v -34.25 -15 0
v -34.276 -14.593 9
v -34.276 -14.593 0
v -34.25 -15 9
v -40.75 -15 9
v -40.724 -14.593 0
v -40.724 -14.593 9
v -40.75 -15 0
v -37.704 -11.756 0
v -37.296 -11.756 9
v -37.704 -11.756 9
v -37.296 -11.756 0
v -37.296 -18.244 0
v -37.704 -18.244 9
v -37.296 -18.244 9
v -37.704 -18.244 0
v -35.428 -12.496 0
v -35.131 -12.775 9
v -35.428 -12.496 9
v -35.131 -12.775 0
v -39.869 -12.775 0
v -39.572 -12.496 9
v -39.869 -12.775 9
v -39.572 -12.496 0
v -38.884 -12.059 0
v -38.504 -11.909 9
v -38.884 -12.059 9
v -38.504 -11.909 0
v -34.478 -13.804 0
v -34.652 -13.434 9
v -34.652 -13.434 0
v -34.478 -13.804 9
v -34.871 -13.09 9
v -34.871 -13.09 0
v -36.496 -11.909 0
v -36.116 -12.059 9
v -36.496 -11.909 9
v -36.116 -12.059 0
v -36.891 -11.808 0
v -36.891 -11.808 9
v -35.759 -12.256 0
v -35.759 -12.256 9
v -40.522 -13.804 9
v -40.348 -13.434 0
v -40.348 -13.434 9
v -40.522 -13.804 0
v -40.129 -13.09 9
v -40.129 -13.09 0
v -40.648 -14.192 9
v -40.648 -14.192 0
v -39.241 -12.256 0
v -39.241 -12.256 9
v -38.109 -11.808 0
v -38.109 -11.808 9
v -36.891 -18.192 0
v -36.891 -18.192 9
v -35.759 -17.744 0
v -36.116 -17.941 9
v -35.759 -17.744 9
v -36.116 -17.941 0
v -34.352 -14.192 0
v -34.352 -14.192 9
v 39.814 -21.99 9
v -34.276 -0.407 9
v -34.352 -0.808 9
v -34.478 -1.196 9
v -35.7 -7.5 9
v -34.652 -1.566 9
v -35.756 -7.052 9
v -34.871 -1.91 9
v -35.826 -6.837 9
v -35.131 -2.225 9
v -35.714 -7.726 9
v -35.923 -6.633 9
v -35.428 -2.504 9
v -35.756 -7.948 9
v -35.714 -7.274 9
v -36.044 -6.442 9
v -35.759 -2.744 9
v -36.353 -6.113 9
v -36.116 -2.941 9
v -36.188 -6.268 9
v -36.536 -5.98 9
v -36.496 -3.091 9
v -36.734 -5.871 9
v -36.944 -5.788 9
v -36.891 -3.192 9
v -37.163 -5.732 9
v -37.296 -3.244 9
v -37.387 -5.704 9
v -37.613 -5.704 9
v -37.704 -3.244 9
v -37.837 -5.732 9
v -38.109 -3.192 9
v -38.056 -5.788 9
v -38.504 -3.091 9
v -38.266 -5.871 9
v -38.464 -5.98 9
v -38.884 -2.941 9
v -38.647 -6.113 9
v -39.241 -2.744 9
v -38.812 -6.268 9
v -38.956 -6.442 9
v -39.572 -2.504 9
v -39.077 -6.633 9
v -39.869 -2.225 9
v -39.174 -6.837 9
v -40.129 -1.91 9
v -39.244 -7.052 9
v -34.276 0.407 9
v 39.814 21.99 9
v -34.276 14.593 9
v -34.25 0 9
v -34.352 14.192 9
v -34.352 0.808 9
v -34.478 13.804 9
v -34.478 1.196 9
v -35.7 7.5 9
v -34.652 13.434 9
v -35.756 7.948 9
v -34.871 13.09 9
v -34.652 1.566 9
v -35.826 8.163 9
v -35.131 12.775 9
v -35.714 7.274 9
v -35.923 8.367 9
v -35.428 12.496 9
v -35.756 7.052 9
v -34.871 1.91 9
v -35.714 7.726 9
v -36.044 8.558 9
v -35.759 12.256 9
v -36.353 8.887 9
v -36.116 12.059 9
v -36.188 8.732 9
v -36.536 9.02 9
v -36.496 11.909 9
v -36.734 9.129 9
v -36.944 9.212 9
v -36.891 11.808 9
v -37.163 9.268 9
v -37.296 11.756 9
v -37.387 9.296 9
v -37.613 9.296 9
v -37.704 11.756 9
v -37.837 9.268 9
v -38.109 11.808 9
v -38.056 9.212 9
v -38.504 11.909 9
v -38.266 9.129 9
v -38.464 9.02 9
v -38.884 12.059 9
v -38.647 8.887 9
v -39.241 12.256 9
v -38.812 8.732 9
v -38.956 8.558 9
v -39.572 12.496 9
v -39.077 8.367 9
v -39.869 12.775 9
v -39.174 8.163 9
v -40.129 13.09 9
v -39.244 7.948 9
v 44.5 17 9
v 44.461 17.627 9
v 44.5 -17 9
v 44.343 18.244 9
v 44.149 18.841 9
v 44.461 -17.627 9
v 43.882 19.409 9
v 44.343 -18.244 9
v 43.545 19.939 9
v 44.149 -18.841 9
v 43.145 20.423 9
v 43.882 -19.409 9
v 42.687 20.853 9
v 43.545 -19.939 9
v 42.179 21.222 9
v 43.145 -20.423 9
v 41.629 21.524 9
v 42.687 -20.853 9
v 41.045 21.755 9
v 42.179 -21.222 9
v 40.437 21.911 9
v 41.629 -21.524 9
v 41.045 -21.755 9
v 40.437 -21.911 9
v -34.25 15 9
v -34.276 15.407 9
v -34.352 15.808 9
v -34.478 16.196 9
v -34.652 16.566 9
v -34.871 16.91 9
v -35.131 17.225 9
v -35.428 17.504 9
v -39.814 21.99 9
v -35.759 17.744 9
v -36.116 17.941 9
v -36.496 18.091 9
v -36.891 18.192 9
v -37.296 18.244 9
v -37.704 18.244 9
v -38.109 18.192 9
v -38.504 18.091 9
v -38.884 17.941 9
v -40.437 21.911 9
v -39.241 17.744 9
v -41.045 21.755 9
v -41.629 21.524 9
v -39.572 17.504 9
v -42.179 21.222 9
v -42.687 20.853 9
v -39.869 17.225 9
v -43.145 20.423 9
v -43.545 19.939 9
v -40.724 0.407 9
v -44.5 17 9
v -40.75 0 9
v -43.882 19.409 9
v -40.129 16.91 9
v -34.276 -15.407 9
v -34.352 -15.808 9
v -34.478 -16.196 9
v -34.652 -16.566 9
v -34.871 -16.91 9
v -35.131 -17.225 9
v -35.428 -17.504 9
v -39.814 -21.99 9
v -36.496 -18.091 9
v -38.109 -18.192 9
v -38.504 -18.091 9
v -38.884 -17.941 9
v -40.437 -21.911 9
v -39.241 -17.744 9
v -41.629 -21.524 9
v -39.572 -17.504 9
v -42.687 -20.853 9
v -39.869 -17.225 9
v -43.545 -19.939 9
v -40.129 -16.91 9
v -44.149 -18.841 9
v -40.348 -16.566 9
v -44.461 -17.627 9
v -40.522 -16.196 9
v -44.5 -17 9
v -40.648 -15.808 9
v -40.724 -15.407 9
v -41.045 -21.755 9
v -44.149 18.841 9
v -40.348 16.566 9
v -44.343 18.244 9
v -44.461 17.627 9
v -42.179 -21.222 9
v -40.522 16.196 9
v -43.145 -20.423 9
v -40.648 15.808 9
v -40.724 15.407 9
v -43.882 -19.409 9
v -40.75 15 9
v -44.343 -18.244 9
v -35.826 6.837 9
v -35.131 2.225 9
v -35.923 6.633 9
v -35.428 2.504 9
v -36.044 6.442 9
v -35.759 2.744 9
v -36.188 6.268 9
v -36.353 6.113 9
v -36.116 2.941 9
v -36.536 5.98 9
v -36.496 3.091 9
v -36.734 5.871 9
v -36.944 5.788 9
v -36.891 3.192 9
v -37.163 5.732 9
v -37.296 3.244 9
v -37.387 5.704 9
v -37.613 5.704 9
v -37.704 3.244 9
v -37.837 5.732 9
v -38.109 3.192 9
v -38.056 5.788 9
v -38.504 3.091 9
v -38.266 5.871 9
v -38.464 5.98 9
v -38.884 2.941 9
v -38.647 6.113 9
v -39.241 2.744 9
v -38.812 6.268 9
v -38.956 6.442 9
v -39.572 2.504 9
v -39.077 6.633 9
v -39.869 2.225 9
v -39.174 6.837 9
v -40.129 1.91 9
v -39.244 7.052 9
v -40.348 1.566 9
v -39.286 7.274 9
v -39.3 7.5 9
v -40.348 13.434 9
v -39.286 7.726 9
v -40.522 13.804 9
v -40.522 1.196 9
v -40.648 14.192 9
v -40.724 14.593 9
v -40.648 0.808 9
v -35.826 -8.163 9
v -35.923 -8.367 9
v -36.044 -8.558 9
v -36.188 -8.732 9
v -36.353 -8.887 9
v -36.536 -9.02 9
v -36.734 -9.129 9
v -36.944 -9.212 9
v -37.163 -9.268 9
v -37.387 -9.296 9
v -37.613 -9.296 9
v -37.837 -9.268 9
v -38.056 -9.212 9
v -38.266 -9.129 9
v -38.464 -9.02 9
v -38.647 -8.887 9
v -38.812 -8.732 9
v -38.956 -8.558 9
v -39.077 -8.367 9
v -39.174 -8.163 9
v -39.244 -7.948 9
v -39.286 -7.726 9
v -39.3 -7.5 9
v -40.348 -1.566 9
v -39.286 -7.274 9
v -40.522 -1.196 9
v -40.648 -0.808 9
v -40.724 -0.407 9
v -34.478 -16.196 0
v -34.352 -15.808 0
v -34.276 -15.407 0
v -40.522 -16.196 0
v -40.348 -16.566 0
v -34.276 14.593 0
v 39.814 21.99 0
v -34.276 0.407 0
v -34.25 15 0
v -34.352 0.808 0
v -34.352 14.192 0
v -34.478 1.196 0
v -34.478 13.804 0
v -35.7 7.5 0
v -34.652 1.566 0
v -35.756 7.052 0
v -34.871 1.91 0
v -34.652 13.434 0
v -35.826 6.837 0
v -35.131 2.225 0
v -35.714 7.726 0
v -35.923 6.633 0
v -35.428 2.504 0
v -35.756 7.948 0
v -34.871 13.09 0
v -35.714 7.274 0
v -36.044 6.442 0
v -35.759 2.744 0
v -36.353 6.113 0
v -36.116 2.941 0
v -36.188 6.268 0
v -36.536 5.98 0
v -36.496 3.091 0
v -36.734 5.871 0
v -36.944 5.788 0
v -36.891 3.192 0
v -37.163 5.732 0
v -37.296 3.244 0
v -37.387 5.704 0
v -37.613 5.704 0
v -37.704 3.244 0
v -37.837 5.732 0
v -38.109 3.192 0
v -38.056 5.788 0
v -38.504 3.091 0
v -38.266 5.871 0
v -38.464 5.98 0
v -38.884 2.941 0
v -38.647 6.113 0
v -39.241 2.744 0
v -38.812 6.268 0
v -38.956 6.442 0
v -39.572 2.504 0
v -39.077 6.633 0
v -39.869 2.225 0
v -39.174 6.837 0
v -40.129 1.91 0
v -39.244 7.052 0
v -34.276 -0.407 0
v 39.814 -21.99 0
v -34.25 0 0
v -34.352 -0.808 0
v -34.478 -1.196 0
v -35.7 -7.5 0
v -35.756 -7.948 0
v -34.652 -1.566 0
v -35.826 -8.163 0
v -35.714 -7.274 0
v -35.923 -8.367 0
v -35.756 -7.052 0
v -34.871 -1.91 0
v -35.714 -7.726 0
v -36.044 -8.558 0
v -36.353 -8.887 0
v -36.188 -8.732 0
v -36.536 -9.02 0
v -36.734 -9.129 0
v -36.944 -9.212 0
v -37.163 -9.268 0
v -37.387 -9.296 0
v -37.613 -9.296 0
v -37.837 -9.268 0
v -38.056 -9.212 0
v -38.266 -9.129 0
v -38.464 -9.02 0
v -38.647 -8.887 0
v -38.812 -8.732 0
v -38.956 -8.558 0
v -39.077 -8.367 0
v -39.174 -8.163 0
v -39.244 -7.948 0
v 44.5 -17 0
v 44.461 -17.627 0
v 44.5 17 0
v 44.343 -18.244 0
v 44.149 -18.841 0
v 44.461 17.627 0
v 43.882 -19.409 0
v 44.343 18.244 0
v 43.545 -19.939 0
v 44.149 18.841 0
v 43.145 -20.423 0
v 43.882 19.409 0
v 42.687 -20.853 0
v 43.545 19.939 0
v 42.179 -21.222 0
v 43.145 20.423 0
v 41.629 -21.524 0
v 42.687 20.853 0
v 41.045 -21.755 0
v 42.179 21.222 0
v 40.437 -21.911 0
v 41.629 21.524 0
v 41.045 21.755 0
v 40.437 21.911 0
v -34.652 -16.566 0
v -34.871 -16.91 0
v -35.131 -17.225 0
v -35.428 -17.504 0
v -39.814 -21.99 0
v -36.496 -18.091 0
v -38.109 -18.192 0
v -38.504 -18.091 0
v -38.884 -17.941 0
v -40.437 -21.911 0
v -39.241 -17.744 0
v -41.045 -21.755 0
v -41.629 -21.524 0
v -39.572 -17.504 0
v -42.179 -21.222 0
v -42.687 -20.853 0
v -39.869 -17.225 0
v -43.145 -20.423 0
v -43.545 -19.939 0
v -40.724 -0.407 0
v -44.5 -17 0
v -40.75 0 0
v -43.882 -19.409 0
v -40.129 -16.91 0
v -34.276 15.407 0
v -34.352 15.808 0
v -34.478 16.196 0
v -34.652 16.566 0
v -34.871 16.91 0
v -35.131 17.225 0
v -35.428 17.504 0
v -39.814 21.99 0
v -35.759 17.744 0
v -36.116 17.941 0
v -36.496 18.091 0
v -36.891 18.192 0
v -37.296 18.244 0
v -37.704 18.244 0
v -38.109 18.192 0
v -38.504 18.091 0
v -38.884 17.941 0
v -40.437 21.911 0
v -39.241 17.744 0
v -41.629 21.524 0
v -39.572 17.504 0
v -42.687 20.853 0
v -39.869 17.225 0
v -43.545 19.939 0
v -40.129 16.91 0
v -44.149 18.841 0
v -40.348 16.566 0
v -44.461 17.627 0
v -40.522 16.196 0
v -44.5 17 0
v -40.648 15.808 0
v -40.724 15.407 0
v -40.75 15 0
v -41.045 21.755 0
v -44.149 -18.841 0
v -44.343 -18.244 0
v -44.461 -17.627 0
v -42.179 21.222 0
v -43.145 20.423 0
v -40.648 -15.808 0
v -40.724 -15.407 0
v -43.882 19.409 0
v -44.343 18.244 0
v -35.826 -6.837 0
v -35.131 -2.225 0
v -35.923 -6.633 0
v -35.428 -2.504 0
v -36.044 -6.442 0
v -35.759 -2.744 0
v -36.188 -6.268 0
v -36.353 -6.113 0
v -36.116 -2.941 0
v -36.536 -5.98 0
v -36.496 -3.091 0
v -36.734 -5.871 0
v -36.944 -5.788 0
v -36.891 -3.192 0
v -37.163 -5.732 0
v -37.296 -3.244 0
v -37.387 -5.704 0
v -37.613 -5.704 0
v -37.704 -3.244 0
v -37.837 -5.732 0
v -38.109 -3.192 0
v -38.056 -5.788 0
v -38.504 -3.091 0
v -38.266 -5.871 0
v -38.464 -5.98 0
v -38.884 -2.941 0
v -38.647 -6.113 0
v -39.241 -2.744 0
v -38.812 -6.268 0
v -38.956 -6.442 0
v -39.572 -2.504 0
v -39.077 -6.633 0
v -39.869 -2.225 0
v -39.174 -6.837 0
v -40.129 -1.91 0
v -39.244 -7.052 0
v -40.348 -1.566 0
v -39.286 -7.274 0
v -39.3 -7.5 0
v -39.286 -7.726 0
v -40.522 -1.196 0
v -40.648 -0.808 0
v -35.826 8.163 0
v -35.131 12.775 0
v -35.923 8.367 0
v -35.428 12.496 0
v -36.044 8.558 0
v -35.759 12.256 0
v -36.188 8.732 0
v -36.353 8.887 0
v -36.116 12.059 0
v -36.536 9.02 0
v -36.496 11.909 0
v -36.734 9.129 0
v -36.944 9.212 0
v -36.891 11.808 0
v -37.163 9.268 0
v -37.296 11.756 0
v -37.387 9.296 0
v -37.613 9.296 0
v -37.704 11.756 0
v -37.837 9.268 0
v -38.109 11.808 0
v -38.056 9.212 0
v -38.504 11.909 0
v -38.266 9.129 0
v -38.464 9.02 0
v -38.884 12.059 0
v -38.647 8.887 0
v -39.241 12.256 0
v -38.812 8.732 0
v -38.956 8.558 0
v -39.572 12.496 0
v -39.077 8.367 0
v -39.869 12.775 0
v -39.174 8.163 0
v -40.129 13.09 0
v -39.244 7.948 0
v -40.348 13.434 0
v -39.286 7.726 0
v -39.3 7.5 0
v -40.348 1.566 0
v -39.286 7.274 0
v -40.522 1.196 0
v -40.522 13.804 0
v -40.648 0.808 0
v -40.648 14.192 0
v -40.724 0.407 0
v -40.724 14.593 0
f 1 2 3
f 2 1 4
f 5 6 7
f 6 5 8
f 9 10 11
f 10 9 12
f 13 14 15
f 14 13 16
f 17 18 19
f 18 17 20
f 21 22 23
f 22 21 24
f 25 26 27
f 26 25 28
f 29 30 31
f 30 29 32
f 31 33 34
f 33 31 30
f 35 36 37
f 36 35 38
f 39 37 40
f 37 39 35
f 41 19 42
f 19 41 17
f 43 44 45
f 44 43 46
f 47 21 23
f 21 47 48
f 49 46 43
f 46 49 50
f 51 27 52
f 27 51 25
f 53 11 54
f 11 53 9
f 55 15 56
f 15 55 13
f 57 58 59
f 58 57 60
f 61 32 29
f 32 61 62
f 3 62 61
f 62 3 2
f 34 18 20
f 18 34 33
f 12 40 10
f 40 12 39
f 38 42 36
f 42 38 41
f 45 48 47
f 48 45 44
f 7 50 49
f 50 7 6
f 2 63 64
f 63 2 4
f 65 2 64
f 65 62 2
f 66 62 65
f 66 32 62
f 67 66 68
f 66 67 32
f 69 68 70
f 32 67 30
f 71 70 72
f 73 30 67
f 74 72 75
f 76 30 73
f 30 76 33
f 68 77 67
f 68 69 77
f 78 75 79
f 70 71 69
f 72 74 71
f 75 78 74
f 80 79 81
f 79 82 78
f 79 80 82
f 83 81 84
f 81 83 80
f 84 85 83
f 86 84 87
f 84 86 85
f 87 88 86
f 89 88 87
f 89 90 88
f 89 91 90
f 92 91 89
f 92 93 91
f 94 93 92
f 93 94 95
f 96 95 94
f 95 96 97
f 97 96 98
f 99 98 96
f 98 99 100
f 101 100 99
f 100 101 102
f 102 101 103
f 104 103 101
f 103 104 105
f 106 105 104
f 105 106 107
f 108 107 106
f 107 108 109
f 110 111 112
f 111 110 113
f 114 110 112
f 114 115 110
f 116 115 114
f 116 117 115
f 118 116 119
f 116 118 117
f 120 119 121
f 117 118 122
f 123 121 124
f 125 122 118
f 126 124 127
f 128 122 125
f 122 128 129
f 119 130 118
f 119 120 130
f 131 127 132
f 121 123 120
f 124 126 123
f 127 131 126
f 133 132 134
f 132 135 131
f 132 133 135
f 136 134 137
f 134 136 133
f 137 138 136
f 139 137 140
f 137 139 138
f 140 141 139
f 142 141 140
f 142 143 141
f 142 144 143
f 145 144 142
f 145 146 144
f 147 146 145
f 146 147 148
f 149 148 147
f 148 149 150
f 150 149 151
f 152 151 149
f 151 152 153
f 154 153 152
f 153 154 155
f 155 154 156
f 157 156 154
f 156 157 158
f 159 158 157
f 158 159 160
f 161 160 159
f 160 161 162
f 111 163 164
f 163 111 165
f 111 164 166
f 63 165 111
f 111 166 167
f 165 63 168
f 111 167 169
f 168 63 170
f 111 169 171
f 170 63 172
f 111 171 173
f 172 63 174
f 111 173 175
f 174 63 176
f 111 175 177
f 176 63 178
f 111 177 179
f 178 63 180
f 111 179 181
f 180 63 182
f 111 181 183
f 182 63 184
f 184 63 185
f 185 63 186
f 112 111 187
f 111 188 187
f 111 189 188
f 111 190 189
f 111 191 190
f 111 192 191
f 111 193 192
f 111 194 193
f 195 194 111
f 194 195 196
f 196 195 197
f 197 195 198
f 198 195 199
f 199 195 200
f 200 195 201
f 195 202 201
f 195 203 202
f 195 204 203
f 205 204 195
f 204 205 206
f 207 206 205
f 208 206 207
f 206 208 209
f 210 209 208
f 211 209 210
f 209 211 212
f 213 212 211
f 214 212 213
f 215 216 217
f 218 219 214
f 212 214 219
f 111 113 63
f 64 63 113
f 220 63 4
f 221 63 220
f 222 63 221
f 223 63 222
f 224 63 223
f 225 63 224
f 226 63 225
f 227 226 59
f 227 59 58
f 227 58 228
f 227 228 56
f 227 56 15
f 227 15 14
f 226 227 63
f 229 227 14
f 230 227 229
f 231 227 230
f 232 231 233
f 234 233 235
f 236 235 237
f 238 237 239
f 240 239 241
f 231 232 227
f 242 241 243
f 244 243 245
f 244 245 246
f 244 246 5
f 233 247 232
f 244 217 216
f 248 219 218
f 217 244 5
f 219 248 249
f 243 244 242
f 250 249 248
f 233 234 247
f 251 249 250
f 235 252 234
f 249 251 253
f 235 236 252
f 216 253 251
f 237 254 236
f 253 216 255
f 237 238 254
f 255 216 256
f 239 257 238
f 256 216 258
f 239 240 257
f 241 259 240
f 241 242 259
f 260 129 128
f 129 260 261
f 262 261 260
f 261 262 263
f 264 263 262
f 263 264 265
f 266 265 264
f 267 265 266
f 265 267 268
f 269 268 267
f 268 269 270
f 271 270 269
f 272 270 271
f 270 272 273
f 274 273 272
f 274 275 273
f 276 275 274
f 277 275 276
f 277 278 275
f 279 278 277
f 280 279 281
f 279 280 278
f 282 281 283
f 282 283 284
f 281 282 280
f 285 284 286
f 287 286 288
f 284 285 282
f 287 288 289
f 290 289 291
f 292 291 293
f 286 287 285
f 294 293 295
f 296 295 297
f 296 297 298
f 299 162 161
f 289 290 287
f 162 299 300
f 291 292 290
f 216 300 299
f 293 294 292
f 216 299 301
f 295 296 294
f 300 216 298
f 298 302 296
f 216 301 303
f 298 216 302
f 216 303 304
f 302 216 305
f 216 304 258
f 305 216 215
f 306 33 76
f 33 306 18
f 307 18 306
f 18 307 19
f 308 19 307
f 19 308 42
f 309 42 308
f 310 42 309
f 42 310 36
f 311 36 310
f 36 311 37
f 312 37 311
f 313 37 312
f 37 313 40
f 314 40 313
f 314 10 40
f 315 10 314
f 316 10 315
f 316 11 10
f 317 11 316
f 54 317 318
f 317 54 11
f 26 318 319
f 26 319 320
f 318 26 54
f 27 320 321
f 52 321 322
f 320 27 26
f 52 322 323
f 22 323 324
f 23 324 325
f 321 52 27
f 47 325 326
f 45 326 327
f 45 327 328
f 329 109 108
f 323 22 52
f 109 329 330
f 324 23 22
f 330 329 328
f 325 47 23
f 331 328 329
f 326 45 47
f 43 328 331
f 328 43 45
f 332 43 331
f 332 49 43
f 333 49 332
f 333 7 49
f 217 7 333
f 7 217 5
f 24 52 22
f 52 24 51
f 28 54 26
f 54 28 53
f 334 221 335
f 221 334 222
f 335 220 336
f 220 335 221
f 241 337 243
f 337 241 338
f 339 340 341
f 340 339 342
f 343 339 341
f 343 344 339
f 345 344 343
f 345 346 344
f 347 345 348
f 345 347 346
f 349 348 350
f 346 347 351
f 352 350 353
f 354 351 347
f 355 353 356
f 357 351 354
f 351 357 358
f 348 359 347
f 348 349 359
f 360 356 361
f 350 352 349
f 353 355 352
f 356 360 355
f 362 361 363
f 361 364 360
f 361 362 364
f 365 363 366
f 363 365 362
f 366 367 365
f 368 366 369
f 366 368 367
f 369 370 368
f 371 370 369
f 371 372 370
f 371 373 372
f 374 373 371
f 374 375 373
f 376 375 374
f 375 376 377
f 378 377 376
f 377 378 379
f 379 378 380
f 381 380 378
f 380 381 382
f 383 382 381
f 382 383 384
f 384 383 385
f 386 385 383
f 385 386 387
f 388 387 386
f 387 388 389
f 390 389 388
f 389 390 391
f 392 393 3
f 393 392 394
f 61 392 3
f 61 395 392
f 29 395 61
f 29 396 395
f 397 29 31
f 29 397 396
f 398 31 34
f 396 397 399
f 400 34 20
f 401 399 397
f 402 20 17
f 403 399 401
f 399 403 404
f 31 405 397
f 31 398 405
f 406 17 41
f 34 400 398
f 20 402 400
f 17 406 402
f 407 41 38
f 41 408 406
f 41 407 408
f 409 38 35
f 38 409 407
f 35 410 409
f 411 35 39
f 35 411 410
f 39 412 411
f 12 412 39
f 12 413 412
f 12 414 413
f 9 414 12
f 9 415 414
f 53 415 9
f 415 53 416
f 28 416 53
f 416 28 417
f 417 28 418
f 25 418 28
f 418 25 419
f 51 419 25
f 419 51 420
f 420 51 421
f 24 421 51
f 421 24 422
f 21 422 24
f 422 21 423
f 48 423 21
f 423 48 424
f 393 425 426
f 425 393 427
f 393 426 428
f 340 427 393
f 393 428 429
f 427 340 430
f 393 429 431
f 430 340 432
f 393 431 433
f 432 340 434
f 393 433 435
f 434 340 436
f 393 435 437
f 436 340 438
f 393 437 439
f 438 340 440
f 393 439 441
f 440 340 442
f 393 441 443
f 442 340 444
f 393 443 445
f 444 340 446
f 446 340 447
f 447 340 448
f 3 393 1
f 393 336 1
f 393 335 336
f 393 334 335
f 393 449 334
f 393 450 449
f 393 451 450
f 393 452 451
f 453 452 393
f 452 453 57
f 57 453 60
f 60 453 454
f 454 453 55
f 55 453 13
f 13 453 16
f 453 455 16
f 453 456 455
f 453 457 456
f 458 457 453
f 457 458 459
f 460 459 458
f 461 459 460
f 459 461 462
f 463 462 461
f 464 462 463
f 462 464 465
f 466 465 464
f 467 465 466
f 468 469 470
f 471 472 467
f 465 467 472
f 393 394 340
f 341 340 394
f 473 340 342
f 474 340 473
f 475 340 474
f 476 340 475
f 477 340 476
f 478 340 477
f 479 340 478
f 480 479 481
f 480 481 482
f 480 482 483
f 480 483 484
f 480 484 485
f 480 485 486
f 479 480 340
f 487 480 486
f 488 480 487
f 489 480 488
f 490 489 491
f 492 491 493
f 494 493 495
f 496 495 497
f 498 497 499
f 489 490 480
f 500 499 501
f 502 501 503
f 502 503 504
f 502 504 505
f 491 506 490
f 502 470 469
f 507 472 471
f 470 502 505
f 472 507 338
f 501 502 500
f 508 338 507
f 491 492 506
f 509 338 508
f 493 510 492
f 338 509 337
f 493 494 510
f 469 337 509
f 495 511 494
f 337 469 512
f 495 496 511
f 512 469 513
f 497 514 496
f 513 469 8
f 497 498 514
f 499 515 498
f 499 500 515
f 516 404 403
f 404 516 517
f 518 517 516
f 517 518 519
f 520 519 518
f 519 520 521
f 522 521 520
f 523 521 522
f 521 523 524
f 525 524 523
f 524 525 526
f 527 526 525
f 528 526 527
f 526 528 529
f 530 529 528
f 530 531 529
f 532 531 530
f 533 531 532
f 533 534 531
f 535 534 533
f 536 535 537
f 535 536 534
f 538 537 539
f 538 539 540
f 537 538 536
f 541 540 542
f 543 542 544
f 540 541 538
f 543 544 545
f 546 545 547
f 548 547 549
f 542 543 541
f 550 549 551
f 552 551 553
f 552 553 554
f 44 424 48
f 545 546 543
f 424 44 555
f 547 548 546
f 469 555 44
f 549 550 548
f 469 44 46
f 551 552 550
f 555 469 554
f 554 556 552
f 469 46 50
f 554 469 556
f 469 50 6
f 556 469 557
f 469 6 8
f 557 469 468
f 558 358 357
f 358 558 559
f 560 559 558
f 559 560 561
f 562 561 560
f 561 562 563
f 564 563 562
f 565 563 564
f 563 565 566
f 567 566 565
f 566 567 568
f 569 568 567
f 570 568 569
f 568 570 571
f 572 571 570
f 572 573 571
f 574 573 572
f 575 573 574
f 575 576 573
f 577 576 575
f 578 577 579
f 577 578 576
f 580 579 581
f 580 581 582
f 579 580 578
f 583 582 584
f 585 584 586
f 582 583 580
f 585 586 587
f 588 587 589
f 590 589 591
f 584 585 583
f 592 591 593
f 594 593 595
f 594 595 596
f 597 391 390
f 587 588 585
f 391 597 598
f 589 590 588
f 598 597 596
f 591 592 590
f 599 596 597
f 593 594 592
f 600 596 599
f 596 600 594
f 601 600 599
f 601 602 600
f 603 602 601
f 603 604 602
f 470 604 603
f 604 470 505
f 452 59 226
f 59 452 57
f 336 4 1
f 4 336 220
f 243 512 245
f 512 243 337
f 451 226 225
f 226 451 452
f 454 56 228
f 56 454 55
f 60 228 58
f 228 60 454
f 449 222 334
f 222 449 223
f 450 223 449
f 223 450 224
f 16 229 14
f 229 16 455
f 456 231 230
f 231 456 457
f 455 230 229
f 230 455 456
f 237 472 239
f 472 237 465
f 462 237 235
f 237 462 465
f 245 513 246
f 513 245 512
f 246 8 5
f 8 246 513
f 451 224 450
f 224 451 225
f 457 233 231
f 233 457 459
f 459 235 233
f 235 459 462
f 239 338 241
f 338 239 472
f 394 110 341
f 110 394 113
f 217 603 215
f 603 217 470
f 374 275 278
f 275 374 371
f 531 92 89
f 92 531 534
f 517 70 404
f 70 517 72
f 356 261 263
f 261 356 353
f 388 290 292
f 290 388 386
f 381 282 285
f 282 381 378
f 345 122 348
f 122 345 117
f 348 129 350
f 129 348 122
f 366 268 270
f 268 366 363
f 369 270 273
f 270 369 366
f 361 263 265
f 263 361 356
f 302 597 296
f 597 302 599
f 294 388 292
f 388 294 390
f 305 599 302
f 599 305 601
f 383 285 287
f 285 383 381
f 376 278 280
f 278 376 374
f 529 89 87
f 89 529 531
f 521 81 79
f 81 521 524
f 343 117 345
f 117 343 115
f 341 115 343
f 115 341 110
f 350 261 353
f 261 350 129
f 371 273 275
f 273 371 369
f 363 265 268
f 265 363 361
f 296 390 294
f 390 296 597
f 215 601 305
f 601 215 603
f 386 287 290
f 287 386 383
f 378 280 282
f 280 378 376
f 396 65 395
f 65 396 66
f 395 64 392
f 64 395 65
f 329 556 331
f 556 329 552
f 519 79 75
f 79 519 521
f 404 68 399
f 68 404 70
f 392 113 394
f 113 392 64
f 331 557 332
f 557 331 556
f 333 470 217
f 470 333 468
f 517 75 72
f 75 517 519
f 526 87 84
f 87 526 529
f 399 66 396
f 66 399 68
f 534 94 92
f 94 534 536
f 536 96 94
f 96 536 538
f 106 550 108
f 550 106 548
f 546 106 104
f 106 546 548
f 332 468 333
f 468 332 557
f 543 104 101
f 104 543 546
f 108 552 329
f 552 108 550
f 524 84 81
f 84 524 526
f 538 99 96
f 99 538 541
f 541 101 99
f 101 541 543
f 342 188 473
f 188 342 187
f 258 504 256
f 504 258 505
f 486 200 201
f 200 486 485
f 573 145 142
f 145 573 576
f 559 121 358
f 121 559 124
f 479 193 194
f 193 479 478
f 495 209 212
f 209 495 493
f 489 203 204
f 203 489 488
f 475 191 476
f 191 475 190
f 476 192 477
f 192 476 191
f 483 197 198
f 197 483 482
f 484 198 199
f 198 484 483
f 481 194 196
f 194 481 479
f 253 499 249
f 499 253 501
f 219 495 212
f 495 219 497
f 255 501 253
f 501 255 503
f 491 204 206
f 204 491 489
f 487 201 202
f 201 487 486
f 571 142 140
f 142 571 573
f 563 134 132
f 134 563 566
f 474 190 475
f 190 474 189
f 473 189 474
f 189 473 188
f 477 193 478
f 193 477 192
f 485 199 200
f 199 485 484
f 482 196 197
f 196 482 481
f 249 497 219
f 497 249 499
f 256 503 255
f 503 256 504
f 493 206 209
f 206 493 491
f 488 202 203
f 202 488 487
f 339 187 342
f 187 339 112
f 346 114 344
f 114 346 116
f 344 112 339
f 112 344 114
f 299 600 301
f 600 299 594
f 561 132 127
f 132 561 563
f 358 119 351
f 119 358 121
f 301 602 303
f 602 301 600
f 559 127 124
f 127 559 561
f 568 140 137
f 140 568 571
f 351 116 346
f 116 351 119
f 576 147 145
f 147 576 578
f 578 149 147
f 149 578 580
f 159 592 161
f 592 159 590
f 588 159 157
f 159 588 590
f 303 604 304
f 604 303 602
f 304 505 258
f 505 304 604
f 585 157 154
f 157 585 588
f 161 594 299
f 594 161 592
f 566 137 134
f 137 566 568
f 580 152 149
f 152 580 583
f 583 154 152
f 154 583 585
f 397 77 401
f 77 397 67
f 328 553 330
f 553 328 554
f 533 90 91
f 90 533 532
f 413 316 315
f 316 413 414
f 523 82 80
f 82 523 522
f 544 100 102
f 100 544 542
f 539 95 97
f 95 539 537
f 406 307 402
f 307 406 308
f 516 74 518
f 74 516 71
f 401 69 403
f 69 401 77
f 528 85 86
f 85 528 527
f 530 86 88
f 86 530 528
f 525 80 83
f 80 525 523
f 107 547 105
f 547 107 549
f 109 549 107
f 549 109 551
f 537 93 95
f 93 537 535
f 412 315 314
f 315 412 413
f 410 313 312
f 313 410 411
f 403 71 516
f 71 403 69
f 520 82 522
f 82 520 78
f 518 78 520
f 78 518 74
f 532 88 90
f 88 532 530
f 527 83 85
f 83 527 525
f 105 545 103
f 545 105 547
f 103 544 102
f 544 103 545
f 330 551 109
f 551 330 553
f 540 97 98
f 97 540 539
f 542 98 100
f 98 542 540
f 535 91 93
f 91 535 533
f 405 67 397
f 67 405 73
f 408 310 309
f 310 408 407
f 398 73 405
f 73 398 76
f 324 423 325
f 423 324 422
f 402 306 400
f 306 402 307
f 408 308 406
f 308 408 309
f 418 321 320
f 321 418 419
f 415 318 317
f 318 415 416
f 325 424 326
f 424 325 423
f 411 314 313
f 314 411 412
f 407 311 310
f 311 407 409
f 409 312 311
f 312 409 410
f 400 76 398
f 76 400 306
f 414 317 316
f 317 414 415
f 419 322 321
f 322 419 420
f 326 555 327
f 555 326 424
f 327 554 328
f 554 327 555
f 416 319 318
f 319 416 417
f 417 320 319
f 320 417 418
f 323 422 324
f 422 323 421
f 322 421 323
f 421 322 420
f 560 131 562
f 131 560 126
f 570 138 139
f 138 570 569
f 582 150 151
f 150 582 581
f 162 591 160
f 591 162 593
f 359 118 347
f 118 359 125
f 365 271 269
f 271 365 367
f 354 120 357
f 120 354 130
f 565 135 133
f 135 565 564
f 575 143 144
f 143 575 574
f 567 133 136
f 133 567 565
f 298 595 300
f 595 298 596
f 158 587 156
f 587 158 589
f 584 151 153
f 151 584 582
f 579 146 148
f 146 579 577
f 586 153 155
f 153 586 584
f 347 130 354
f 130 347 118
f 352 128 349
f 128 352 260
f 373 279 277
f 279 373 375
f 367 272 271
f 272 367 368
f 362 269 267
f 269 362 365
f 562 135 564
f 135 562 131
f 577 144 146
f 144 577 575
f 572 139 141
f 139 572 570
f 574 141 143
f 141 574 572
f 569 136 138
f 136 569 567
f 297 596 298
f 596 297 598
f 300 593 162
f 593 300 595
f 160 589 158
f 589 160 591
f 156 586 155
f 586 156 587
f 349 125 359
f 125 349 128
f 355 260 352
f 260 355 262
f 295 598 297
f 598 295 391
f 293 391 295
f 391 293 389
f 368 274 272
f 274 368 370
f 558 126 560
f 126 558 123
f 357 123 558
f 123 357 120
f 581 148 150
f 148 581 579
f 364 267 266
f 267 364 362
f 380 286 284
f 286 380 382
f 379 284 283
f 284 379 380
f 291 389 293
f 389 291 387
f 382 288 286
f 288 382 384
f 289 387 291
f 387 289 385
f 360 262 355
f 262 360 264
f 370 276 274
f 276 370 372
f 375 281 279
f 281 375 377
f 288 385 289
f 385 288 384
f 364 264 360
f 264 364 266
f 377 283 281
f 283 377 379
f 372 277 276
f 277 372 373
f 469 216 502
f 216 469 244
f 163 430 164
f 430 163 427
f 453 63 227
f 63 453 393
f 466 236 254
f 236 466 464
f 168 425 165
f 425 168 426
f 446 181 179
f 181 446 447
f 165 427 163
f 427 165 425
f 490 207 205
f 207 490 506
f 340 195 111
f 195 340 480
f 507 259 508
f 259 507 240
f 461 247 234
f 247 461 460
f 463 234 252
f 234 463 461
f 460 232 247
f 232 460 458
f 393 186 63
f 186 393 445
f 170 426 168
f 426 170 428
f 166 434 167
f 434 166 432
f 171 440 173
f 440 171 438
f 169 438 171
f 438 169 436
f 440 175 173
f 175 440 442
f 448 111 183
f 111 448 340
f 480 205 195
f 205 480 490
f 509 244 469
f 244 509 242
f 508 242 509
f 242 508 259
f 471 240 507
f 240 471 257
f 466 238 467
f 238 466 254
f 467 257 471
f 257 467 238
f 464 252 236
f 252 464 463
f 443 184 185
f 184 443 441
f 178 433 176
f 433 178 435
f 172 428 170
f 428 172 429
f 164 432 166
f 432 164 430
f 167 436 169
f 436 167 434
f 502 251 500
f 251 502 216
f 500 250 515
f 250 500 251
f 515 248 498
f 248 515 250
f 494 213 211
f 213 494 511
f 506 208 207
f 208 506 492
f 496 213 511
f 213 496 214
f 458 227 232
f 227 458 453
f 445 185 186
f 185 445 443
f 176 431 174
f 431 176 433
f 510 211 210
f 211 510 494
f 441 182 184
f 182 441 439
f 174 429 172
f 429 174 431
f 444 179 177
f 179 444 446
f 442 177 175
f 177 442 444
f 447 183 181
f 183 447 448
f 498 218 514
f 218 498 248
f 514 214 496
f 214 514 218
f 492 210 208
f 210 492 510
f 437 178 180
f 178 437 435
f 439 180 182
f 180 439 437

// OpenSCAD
$fn = 50;


difference() {
	union() {
		hull() {
			translate(v = [-39.5000000000, 17.0000000000, 0]) {
				cylinder(h = 9, r = 5);
			}
			translate(v = [39.5000000000, 17.0000000000, 0]) {
				cylinder(h = 9, r = 5);
			}
			translate(v = [-39.5000000000, -17.0000000000, 0]) {
				cylinder(h = 9, r = 5);
			}
			translate(v = [39.5000000000, -17.0000000000, 0]) {
				cylinder(h = 9, r = 5);
			}
		}
	}
	union() {
		translate(v = [-37.5000000000, -15.0000000000, 0]) {
			cylinder(h = 9, r = 3.2500000000);
		}
		translate(v = [-37.5000000000, 0.0000000000, 0]) {
			cylinder(h = 9, r = 3.2500000000);
		}
		translate(v = [-37.5000000000, 15.0000000000, 0]) {
			cylinder(h = 9, r = 3.2500000000);
		}
		translate(v = [-37.5000000000, -15.0000000000, 0]) {
			cylinder(h = 9, r = 1.8000000000);
		}
		translate(v = [-37.5000000000, -7.5000000000, 0]) {
			cylinder(h = 9, r = 1.8000000000);
		}
		translate(v = [-37.5000000000, 0.0000000000, 0]) {
			cylinder(h = 9, r = 1.8000000000);
		}
		translate(v = [-37.5000000000, 7.5000000000, 0]) {
			cylinder(h = 9, r = 1.8000000000);
		}
		translate(v = [-37.5000000000, 15.0000000000, 0]) {
			cylinder(h = 9, r = 1.8000000000);
		}
		translate(v = [-37.5000000000, -15.0000000000, 0]) {
			cylinder(h = 9, r = 1.8000000000);
		}
		translate(v = [-37.5000000000, -7.5000000000, 0]) {
			cylinder(h = 9, r = 1.8000000000);
		}
		translate(v = [-37.5000000000, 0.0000000000, 0]) {
			cylinder(h = 9, r = 1.8000000000);
		}
		translate(v = [-37.5000000000, 7.5000000000, 0]) {
			cylinder(h = 9, r = 1.8000000000);
		}
		translate(v = [-37.5000000000, 15.0000000000, 0]) {
			cylinder(h = 9, r = 1.8000000000);
		}
		translate(v = [-37.5000000000, -15.0000000000, 0]) {
			cylinder(h = 9, r = 1.8000000000);
		}
		translate(v = [-37.5000000000, -7.5000000000, 0]) {
			cylinder(h = 9, r = 1.8000000000);
		}
		translate(v = [-37.5000000000, 0.0000000000, 0]) {
			cylinder(h = 9, r = 1.8000000000);
		}
		translate(v = [-37.5000000000, 7.5000000000, 0]) {
			cylinder(h = 9, r = 1.8000000000);
		}
		translate(v = [-37.5000000000, 15.0000000000, 0]) {
			cylinder(h = 9, r = 1.8000000000);
		}
	}
}
